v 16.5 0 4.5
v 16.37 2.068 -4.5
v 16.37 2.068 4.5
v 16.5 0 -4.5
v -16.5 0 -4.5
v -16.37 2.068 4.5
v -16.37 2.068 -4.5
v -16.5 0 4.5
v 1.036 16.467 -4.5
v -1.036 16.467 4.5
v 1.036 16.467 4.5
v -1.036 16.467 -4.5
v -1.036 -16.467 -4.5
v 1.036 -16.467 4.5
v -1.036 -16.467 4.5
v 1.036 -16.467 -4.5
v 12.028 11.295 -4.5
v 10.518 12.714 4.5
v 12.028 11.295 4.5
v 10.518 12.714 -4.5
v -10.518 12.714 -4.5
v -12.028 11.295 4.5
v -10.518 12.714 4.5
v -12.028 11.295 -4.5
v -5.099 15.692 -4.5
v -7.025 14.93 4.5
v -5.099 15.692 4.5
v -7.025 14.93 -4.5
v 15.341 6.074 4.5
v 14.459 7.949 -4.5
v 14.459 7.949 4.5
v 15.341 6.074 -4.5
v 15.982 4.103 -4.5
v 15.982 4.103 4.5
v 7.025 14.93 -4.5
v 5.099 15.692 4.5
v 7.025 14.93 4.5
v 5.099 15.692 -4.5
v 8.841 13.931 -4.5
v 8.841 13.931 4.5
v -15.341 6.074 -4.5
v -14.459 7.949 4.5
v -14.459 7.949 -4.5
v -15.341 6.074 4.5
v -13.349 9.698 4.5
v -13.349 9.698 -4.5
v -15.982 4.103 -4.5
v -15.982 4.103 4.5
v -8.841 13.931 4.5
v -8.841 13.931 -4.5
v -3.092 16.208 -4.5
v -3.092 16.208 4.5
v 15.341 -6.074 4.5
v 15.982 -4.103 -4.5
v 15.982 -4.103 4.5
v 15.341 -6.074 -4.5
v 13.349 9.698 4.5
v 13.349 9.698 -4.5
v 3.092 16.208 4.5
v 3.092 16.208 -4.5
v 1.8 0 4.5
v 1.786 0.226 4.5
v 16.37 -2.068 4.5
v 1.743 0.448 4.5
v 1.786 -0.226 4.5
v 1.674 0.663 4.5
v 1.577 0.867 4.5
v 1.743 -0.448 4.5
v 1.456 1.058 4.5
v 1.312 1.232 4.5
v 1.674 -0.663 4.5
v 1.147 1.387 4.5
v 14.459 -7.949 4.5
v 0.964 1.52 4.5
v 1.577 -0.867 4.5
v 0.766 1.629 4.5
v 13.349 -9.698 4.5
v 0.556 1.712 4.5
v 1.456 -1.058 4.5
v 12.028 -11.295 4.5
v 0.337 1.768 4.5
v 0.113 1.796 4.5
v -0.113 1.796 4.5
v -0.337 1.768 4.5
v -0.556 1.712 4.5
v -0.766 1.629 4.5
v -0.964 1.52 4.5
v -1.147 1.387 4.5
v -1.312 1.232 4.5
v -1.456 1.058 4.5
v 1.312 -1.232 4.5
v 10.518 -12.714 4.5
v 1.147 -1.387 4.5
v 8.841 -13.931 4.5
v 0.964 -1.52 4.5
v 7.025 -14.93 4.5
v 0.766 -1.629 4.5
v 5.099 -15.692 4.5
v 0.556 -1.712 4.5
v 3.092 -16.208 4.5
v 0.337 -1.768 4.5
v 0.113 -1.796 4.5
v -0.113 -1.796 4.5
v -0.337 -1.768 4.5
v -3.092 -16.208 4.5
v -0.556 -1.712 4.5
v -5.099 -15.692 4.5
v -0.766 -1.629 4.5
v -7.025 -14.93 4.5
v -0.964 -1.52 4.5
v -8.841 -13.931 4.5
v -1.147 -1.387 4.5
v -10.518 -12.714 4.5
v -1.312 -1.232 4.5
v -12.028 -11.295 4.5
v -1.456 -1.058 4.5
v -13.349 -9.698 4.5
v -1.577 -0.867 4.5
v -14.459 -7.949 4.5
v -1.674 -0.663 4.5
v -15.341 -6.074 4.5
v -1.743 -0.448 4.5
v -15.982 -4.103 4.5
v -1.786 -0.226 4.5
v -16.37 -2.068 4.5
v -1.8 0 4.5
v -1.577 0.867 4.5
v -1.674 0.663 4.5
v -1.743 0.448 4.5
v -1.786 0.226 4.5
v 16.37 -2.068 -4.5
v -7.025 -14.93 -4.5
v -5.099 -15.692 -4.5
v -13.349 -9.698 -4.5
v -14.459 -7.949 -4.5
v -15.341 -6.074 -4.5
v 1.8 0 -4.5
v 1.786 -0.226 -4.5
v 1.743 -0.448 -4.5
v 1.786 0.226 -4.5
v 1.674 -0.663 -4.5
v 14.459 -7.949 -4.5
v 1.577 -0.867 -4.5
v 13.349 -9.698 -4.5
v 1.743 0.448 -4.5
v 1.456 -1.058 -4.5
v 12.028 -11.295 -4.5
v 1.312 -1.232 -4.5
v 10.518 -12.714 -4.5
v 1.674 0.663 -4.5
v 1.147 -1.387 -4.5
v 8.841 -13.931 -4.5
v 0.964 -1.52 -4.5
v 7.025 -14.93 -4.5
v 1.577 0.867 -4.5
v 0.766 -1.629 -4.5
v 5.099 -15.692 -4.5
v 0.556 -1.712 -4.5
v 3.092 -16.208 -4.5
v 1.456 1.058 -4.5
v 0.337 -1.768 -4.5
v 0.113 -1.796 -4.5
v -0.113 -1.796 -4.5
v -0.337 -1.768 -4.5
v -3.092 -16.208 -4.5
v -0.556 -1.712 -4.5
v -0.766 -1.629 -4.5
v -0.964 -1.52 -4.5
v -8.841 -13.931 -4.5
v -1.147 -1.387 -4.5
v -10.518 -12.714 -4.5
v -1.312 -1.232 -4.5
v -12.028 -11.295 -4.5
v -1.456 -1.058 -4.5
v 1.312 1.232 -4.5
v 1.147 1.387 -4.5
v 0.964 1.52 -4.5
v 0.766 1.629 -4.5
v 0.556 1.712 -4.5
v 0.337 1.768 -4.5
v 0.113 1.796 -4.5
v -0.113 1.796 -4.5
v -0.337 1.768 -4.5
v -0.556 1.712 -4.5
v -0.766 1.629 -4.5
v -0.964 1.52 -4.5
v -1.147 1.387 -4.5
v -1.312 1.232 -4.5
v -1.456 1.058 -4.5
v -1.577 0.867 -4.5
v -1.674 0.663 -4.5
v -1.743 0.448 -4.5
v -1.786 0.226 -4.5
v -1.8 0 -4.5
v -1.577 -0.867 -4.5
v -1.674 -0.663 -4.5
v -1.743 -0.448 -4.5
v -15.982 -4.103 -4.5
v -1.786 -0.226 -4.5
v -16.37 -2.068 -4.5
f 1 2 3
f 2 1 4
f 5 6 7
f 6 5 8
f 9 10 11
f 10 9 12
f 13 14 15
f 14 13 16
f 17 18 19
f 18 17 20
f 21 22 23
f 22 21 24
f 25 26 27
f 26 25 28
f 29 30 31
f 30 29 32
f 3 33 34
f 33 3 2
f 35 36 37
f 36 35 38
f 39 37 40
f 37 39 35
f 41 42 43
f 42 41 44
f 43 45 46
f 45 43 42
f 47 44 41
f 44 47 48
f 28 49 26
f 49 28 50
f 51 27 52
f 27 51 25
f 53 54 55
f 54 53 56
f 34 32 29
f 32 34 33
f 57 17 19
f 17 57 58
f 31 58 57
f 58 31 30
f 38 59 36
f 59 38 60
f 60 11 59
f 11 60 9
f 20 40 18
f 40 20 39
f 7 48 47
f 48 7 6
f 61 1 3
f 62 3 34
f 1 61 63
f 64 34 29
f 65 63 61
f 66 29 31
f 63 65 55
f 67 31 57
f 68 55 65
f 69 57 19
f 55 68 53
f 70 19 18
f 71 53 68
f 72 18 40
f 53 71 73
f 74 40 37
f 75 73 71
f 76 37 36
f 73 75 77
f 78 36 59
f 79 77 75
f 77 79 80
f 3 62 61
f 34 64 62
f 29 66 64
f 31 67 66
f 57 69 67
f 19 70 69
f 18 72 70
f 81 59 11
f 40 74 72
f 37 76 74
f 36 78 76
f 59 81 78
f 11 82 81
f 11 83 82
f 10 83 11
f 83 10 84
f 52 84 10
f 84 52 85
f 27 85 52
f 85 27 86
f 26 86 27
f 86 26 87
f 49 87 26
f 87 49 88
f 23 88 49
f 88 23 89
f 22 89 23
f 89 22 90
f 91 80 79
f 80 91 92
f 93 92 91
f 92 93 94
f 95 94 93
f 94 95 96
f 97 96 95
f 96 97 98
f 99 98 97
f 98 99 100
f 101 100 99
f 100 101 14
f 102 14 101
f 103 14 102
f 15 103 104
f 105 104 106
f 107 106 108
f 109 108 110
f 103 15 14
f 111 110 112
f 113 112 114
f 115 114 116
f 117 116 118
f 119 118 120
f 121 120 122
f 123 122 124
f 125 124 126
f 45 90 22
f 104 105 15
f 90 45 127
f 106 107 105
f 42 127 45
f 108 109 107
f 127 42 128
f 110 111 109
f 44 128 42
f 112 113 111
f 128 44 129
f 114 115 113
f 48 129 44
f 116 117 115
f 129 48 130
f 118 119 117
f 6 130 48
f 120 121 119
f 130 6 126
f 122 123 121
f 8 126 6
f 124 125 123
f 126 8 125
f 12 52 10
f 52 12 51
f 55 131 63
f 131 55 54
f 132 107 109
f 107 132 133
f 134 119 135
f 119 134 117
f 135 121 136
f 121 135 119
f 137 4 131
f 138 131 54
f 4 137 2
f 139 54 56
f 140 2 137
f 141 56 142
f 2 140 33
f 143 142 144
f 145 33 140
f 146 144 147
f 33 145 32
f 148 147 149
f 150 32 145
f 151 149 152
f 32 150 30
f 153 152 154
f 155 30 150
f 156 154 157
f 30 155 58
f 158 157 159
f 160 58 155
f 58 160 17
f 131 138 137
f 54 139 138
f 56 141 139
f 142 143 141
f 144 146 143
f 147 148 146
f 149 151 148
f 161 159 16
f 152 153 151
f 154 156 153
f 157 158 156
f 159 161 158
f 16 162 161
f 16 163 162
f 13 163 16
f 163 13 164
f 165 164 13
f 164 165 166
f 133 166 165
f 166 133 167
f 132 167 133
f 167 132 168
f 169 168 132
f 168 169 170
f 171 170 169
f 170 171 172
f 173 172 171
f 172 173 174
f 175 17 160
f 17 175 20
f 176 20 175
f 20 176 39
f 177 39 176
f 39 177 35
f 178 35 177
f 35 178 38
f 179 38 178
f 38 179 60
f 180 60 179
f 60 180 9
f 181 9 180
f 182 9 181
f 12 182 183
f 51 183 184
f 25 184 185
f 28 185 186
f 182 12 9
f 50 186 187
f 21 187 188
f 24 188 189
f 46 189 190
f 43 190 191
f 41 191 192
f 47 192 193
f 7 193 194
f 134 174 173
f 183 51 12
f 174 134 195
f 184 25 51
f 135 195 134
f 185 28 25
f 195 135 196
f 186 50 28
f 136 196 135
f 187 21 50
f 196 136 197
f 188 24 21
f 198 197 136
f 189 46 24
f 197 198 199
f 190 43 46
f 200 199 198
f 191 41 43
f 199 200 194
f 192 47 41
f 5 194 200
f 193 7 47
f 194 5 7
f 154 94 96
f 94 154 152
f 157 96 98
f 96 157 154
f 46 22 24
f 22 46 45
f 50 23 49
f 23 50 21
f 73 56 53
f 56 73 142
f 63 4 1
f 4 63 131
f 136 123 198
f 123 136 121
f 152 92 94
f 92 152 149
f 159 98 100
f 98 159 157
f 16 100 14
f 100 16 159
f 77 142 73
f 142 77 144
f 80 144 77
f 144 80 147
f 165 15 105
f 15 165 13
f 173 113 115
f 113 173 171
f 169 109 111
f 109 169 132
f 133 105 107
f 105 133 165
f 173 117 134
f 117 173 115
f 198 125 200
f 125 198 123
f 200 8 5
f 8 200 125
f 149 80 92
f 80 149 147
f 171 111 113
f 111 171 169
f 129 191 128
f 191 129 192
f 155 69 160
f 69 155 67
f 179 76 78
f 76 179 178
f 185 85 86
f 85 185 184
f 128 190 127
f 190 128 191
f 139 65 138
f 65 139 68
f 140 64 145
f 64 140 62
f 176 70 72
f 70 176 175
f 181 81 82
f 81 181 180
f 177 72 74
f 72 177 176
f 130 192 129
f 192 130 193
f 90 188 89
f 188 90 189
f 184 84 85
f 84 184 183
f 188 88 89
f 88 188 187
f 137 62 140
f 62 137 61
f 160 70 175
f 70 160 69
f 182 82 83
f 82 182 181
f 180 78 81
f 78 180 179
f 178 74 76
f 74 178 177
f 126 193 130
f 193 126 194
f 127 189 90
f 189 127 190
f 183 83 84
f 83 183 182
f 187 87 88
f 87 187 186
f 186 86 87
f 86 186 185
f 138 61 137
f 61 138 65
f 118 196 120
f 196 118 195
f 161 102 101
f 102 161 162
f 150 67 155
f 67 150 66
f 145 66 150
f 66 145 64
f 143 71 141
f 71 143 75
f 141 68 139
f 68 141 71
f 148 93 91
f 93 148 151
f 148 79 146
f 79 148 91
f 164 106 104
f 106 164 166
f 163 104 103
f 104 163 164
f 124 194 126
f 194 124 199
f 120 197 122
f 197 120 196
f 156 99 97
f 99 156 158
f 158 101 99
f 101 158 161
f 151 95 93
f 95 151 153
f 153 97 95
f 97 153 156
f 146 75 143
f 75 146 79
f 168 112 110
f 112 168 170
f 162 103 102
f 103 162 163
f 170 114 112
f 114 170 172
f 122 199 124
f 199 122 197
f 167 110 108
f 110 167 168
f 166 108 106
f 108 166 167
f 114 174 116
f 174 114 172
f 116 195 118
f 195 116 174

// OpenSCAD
$fn = 50;


difference() {
	union() {
		translate(v = [0, 0, -4.5000000000]) {
			cylinder(h = 9, r = 16.5000000000);
		}
	}
	union() {
		translate(v = [0, 0, -100.0000000000]) {
			cylinder(h = 200, r = 1.8000000000);
		}
	}
}
